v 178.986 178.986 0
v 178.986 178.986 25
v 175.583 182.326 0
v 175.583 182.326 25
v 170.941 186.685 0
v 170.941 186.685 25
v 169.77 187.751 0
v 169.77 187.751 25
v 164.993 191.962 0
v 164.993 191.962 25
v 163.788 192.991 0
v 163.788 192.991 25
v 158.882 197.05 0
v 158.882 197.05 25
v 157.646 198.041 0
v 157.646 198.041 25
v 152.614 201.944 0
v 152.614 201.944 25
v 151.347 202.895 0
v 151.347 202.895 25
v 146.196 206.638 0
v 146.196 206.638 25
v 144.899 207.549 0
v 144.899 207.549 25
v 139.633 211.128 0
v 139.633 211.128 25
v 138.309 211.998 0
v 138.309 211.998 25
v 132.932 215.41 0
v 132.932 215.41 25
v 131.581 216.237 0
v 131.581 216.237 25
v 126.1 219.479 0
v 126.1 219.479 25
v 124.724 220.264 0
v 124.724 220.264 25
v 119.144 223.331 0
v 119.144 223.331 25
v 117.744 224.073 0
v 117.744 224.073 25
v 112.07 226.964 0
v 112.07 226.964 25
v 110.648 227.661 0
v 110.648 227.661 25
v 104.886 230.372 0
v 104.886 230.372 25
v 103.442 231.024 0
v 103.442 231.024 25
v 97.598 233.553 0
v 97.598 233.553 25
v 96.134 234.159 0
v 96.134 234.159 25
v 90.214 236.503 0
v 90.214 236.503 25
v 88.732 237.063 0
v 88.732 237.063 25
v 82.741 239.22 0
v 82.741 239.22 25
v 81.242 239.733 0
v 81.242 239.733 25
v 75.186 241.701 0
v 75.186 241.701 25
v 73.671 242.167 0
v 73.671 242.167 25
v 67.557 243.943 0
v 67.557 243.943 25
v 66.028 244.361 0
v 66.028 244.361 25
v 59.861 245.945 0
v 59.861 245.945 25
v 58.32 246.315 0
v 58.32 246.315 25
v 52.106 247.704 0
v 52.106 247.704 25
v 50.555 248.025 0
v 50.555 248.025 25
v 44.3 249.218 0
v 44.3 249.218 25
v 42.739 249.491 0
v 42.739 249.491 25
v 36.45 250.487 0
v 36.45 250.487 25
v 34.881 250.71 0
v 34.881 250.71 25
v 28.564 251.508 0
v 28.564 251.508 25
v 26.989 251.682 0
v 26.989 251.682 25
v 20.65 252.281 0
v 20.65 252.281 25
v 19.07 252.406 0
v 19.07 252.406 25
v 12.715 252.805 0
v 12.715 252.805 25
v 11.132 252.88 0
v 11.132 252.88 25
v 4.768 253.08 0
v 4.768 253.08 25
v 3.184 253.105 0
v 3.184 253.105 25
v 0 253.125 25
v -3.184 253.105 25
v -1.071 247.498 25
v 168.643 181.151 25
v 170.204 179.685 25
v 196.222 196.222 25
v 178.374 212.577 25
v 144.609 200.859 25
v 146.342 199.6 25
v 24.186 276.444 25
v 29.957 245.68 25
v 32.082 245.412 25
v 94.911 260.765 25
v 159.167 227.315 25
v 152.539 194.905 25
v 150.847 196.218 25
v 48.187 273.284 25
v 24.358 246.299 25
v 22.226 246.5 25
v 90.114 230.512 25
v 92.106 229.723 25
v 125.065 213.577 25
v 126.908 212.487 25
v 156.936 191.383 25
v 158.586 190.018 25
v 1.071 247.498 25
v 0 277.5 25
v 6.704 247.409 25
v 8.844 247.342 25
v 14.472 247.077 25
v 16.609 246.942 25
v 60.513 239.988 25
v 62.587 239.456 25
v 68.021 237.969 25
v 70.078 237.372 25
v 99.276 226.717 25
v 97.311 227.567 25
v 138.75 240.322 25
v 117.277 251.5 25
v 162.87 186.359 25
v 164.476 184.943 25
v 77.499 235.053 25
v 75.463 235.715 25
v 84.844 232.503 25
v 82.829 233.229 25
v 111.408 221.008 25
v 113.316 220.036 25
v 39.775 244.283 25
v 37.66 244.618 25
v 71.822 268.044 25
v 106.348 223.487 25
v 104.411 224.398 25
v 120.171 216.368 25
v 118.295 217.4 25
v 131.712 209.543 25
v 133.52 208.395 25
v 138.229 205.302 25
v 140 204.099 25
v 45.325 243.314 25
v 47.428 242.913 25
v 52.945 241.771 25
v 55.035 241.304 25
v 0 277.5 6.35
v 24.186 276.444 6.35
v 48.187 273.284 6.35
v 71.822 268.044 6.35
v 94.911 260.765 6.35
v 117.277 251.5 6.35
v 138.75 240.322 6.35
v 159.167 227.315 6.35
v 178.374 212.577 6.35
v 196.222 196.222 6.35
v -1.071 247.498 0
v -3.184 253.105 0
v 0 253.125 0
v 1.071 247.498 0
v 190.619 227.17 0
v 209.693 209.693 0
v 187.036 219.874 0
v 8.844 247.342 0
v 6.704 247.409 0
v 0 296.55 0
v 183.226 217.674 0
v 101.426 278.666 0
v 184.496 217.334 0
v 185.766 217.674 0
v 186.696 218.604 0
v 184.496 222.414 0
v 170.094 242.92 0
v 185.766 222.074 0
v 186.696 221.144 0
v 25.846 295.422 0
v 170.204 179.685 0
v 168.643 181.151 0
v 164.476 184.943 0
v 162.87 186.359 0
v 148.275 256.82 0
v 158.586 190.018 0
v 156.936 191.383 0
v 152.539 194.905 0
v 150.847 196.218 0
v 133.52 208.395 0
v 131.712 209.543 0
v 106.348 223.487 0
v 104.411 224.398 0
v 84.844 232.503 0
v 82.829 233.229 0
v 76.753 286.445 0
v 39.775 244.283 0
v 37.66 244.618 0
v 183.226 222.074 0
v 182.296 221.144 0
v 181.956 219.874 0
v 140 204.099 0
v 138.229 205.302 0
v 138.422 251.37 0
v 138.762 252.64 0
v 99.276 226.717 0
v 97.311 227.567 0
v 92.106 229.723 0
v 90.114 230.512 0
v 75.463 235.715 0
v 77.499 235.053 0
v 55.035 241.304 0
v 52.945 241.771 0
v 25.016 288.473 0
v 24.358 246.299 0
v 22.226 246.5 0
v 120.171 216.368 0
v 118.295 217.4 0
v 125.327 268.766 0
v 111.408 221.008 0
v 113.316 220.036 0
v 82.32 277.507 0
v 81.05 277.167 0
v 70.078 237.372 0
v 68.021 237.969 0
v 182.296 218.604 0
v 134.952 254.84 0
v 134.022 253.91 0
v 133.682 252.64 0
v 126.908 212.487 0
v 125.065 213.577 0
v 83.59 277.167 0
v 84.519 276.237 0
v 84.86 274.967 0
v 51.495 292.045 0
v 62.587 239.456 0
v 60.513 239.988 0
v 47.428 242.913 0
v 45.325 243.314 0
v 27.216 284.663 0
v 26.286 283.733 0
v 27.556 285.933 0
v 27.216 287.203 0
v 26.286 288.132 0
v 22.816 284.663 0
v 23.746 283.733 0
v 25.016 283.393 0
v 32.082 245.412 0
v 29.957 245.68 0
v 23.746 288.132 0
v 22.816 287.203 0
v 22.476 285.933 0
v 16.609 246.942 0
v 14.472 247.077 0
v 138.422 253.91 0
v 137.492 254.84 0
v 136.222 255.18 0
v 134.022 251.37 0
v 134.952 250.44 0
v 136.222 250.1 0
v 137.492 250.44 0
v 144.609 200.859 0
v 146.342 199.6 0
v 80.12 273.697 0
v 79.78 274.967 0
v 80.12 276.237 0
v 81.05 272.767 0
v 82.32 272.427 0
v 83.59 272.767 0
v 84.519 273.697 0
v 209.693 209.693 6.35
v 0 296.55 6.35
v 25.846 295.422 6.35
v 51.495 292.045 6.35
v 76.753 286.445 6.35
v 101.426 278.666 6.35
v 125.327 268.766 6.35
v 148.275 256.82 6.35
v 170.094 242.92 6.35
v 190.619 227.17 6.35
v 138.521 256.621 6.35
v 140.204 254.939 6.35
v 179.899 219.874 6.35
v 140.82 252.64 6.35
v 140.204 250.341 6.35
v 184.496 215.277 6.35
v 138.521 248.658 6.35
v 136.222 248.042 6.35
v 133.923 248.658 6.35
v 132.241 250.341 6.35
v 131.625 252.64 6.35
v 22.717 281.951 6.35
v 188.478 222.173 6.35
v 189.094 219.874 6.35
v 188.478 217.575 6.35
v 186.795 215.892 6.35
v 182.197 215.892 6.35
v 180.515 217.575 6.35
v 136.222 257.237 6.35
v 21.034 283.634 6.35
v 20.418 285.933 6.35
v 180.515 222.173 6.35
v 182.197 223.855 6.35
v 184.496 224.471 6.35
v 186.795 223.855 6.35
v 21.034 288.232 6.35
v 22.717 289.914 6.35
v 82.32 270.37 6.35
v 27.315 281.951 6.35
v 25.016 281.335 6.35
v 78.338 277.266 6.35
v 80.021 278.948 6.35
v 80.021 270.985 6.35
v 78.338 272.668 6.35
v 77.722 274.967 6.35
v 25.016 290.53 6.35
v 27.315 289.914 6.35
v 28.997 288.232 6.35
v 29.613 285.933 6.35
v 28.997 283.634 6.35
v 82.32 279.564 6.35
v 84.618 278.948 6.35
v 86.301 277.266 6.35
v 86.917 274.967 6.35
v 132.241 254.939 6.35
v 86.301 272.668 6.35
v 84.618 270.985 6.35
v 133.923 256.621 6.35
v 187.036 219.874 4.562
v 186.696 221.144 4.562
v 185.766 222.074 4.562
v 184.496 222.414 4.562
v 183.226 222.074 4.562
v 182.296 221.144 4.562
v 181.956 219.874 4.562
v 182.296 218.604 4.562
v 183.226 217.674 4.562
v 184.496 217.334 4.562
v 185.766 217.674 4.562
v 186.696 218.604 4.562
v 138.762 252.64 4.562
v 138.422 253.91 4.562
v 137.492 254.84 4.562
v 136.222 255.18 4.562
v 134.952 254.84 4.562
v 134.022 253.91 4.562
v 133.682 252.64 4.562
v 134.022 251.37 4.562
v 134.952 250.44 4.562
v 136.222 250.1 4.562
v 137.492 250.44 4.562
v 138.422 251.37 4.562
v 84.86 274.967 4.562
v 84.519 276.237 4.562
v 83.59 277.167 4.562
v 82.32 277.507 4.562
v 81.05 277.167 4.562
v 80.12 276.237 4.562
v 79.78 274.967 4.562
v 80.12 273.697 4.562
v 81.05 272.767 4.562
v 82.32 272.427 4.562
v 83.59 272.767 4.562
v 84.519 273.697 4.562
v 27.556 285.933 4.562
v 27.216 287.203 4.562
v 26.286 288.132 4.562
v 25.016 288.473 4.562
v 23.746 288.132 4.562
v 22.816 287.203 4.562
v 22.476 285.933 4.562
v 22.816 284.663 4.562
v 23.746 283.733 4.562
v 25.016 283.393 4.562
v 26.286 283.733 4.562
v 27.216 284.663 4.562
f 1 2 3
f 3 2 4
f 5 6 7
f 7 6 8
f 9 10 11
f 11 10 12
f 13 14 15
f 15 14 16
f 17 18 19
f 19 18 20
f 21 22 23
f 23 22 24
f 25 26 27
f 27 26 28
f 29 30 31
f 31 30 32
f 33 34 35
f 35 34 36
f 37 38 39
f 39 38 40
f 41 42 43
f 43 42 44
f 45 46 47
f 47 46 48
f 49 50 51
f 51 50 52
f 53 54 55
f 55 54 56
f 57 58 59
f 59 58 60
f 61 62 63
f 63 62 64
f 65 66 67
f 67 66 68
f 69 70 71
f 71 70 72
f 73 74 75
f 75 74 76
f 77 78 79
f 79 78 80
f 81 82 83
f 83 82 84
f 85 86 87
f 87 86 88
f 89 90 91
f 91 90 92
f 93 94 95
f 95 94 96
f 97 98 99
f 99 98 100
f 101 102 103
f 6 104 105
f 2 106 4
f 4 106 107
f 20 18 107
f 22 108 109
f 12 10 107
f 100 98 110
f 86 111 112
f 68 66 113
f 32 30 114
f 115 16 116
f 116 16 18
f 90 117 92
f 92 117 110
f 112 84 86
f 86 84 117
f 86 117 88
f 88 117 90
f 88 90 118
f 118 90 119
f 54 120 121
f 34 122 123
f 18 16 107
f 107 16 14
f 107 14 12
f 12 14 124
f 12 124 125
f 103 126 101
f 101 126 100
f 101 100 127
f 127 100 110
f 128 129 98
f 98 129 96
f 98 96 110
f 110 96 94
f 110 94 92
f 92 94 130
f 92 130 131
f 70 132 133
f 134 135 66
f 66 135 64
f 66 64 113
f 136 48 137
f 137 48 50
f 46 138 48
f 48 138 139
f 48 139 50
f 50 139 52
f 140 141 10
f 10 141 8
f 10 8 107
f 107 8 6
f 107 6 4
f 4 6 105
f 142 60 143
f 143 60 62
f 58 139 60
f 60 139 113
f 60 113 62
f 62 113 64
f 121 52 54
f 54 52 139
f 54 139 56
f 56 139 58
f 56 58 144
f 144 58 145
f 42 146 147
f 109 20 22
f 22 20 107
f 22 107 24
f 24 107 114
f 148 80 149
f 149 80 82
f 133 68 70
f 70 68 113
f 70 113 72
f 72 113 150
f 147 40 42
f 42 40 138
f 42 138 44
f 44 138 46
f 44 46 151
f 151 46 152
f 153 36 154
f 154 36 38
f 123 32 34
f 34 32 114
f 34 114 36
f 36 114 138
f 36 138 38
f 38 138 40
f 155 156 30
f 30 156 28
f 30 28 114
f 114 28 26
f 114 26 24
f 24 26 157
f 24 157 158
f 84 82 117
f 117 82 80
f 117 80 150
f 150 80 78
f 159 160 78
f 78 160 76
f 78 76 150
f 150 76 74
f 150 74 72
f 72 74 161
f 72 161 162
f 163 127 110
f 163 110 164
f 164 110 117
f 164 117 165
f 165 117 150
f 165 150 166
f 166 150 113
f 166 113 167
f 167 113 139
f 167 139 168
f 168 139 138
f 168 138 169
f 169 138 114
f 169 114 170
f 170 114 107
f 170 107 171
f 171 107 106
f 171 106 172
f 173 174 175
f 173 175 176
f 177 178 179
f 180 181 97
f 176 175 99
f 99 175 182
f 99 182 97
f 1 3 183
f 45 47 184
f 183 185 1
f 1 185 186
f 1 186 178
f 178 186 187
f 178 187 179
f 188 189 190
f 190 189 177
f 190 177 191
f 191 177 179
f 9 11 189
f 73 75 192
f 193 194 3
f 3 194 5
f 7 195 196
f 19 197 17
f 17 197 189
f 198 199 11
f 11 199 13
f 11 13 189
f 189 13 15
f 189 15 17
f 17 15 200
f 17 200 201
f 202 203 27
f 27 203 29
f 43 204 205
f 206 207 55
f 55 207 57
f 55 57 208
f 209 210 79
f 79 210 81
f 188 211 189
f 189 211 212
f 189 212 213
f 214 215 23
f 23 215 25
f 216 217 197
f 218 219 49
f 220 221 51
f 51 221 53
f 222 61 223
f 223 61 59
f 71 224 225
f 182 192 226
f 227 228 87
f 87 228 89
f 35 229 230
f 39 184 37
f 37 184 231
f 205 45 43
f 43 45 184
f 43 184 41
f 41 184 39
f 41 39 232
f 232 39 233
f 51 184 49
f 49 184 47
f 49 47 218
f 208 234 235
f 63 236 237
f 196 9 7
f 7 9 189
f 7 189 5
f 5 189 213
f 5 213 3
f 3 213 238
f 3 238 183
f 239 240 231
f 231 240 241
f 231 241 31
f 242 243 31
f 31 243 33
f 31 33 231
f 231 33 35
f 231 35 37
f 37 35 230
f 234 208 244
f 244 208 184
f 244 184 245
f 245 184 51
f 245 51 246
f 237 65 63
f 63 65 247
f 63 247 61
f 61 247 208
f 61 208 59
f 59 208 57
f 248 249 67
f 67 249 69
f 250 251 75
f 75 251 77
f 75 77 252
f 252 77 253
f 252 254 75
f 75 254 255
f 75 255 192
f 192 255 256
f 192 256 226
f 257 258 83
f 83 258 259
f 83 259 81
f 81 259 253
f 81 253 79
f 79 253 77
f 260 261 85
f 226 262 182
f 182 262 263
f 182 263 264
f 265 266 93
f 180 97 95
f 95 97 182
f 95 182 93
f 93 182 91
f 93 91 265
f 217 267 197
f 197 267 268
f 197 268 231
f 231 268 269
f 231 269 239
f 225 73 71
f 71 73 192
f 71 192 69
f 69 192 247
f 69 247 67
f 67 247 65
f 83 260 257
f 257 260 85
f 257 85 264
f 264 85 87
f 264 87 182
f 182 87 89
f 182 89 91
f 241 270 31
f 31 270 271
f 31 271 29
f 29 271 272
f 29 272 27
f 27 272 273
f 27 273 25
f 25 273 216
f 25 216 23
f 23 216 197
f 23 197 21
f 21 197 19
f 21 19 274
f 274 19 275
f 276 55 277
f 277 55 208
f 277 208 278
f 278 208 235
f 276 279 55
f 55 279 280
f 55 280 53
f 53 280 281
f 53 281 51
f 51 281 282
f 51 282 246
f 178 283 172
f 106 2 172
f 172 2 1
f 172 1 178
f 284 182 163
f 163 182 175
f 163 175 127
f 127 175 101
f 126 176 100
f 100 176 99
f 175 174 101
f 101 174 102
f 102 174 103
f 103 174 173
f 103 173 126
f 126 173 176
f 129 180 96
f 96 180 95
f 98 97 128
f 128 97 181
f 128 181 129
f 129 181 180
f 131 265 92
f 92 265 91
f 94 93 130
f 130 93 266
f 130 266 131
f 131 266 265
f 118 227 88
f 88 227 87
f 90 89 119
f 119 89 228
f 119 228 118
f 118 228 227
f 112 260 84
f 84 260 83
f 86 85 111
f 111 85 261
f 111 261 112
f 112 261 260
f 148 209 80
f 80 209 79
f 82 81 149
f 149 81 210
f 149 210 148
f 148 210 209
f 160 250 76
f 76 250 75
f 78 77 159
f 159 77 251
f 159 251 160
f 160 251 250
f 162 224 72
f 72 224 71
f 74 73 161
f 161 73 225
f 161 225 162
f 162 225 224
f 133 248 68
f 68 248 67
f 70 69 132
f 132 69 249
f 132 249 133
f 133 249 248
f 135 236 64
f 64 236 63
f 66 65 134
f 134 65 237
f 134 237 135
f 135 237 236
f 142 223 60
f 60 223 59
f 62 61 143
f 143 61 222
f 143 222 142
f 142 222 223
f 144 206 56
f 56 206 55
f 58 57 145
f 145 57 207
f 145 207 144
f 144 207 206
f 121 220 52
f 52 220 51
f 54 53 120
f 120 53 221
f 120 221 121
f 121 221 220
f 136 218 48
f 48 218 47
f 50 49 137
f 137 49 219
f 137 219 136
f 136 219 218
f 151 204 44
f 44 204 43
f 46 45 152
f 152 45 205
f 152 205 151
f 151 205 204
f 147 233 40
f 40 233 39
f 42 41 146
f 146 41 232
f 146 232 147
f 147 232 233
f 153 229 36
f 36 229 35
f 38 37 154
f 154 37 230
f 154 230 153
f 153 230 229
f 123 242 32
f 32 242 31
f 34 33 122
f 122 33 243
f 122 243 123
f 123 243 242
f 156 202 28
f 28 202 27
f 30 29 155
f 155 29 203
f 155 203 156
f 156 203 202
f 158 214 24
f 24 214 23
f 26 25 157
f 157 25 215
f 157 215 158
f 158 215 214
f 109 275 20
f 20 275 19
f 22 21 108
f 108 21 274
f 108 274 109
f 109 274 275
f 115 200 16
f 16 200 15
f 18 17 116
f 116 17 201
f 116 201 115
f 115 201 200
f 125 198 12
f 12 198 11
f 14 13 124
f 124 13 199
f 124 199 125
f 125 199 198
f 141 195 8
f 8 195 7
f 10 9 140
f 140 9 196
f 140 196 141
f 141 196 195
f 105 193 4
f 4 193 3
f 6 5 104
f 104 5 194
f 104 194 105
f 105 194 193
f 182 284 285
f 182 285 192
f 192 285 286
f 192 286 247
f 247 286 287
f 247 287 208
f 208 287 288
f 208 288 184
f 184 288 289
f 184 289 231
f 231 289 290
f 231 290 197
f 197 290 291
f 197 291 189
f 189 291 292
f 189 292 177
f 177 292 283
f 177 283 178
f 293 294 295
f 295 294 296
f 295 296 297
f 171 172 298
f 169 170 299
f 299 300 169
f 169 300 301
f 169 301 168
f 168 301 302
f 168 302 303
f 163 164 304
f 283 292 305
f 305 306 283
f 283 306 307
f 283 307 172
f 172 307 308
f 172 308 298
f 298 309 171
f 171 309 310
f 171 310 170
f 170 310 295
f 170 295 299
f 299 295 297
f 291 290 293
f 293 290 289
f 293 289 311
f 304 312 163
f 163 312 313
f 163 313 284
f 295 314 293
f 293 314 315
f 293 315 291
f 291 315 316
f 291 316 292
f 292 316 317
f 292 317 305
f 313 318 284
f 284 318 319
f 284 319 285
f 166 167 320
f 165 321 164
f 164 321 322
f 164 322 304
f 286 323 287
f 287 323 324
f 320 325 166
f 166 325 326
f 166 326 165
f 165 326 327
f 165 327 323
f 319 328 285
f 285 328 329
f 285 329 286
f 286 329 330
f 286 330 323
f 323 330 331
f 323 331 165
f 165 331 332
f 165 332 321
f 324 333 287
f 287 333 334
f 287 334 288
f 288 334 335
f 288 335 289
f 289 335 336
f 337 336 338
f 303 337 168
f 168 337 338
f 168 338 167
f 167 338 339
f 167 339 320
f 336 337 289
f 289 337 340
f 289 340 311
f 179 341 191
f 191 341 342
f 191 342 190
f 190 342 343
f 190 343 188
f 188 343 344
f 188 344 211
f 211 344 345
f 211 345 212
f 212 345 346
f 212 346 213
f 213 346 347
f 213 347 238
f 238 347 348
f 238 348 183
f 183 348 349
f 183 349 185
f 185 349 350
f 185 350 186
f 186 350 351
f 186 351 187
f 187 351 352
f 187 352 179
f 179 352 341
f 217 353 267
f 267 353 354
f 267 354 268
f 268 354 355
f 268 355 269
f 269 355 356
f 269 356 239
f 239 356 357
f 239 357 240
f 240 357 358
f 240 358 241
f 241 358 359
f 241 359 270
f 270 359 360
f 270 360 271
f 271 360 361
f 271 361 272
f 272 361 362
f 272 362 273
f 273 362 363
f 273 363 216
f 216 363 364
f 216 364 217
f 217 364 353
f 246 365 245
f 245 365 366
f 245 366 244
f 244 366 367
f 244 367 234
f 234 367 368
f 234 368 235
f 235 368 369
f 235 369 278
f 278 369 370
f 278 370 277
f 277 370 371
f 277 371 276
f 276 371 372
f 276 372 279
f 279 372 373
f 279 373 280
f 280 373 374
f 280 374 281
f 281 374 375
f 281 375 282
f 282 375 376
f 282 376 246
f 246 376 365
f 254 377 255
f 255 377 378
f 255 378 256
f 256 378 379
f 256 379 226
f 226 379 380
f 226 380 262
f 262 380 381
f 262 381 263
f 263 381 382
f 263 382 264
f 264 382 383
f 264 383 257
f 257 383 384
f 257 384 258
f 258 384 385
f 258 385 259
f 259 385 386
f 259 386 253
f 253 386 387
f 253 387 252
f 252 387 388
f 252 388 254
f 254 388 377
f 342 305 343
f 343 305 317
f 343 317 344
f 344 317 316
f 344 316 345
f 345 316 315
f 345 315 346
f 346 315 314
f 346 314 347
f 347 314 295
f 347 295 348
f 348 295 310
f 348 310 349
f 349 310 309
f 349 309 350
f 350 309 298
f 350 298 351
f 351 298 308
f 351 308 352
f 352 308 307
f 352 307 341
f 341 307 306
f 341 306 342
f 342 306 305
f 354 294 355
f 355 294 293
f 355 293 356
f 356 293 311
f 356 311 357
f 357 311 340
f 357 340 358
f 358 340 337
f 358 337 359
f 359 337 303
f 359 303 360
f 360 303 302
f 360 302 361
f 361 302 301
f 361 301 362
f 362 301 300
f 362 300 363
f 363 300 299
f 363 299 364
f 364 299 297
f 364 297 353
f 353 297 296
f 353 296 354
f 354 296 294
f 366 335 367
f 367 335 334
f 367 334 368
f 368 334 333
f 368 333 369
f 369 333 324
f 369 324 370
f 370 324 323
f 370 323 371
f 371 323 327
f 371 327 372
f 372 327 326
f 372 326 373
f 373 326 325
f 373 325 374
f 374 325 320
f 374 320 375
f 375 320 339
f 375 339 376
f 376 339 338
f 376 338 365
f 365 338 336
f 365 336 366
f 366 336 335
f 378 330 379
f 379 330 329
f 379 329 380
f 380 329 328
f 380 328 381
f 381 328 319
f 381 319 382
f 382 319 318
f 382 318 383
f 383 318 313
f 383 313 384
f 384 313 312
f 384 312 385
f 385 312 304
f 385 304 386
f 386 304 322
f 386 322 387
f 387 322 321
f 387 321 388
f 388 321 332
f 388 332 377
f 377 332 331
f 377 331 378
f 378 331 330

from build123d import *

# Parameters (mm, degrees)
SKETCH4_W           = 25
SKETCH4_H           = 24.37499982
REVOLVE1_ANGLE      = 45
BOSS_EXTRUDE1_DEPTH = 25
CIRPATTERN1_COUNT   = 25
CIRPATTERN1_ANGLE   = 43.2
SWEEP1_DEPTH        = 6.35
SKETCH18_R          = 2.54
CUT_EXTRUDE1_DEPTH  = 364.676609435
CHAMFER1_SIZE       = 2.0574
CHAMFER1_SIZE2      = 1.788470534


# Read off the part's stored shape, not the designer's step: Sweep1
with BuildPart() as part:
    # Sketch4 → Revolve1 (revolve)
    with BuildSketch(Plane(origin=(0, 0, 0), x_dir=(0, 0, -1), z_dir=(1, 0, 0))):
        with Locations((-12.5, 265.31250009)):
            Rectangle(SKETCH4_W, SKETCH4_H)
    revolve(axis=Axis((0, 0, 25), (0, 0, -1)), revolution_arc=REVOLVE1_ANGLE)

    # Sketch16 → Boss-Extrude1 (add)
    with BuildSketch(Plane(origin=(0, 0, 0), x_dir=(-1, 0, 0), z_dir=(0, 0, -1))):
        with BuildLine():
            ThreePointArc((-3.183813967, 253.104976333), (0, 253.12500018), (3.183813967, 253.104976333))
            ThreePointArc((3.183813967, 253.104976333), (2.085257529, 250.317161386), (1.070720498, 247.497683944))
            ThreePointArc((1.070720498, 247.497683944), (0, 247.5), (-1.070720498, 247.497683944))
            ThreePointArc((-1.070720498, 247.497683944), (-2.085257529, 250.317161386), (-3.183813967, 253.104976333))
        make_face()
    boss_extrude1 = extrude(amount=-BOSS_EXTRUDE1_DEPTH)

    # CirPattern1: Boss-Extrude1 ×25 about axis
    cirpattern1_axis = Axis((0, 0, 0), (0, 0, -1))
    for i in range(1, CIRPATTERN1_COUNT):
        add(boss_extrude1.rotate(cirpattern1_axis, i * CIRPATTERN1_ANGLE / (CIRPATTERN1_COUNT - 1)))

    # Sweep1 outline → Sweep1 (add)
    with BuildSketch(Plane.XY):
        with BuildLine():
            Line((196.222131779, 196.222131779), (209.692515961, 209.692515961))
            ThreePointArc((209.692515961, 209.692515961), (113.484771868, 273.976475366), (0, 296.55))
            Line((0, 296.55), (0, 277.5))
            ThreePointArc((0, 277.5), (106.194652481, 256.376570272), (196.222131779, 196.222131779))
        make_face()
    extrude(amount=SWEEP1_DEPTH)

    # Sketch18 → Cut-Extrude1 (cut, through all)
    with BuildSketch(Plane.XY.offset(6.35)):
        with Locations((25.015877062, 285.93278322)):
            Circle(SKETCH18_R)
        with Locations((82.319697869, 274.966939772)):
            Circle(SKETCH18_R)
        with Locations((136.222171127, 252.639804303)):
            Circle(SKETCH18_R)
        with Locations((184.49611367, 219.873906286)):
            Circle(SKETCH18_R)
    extrude(amount=-CUT_EXTRUDE1_DEPTH, mode=Mode.SUBTRACT)

    # Chamfer1
    chamfer1_edges = [part.edges().sort_by_distance(p)[0] for p in [
        (22.475877062, 285.93278322, 6.35),
        (79.779697869, 274.966939772, 6.35),
        (133.682171127, 252.639804303, 6.35),
        (181.95611367, 219.873906286, 6.35),
    ]]
    chamfer1_side = [part.faces().sort_by_distance(p)[0] for p in [
        (107.078815813, 258.511129376, 6.35),
    ]]
    chamfer(chamfer1_edges, length=CHAMFER1_SIZE, length2=CHAMFER1_SIZE2, reference=chamfer1_side[0])


solid = part.part
